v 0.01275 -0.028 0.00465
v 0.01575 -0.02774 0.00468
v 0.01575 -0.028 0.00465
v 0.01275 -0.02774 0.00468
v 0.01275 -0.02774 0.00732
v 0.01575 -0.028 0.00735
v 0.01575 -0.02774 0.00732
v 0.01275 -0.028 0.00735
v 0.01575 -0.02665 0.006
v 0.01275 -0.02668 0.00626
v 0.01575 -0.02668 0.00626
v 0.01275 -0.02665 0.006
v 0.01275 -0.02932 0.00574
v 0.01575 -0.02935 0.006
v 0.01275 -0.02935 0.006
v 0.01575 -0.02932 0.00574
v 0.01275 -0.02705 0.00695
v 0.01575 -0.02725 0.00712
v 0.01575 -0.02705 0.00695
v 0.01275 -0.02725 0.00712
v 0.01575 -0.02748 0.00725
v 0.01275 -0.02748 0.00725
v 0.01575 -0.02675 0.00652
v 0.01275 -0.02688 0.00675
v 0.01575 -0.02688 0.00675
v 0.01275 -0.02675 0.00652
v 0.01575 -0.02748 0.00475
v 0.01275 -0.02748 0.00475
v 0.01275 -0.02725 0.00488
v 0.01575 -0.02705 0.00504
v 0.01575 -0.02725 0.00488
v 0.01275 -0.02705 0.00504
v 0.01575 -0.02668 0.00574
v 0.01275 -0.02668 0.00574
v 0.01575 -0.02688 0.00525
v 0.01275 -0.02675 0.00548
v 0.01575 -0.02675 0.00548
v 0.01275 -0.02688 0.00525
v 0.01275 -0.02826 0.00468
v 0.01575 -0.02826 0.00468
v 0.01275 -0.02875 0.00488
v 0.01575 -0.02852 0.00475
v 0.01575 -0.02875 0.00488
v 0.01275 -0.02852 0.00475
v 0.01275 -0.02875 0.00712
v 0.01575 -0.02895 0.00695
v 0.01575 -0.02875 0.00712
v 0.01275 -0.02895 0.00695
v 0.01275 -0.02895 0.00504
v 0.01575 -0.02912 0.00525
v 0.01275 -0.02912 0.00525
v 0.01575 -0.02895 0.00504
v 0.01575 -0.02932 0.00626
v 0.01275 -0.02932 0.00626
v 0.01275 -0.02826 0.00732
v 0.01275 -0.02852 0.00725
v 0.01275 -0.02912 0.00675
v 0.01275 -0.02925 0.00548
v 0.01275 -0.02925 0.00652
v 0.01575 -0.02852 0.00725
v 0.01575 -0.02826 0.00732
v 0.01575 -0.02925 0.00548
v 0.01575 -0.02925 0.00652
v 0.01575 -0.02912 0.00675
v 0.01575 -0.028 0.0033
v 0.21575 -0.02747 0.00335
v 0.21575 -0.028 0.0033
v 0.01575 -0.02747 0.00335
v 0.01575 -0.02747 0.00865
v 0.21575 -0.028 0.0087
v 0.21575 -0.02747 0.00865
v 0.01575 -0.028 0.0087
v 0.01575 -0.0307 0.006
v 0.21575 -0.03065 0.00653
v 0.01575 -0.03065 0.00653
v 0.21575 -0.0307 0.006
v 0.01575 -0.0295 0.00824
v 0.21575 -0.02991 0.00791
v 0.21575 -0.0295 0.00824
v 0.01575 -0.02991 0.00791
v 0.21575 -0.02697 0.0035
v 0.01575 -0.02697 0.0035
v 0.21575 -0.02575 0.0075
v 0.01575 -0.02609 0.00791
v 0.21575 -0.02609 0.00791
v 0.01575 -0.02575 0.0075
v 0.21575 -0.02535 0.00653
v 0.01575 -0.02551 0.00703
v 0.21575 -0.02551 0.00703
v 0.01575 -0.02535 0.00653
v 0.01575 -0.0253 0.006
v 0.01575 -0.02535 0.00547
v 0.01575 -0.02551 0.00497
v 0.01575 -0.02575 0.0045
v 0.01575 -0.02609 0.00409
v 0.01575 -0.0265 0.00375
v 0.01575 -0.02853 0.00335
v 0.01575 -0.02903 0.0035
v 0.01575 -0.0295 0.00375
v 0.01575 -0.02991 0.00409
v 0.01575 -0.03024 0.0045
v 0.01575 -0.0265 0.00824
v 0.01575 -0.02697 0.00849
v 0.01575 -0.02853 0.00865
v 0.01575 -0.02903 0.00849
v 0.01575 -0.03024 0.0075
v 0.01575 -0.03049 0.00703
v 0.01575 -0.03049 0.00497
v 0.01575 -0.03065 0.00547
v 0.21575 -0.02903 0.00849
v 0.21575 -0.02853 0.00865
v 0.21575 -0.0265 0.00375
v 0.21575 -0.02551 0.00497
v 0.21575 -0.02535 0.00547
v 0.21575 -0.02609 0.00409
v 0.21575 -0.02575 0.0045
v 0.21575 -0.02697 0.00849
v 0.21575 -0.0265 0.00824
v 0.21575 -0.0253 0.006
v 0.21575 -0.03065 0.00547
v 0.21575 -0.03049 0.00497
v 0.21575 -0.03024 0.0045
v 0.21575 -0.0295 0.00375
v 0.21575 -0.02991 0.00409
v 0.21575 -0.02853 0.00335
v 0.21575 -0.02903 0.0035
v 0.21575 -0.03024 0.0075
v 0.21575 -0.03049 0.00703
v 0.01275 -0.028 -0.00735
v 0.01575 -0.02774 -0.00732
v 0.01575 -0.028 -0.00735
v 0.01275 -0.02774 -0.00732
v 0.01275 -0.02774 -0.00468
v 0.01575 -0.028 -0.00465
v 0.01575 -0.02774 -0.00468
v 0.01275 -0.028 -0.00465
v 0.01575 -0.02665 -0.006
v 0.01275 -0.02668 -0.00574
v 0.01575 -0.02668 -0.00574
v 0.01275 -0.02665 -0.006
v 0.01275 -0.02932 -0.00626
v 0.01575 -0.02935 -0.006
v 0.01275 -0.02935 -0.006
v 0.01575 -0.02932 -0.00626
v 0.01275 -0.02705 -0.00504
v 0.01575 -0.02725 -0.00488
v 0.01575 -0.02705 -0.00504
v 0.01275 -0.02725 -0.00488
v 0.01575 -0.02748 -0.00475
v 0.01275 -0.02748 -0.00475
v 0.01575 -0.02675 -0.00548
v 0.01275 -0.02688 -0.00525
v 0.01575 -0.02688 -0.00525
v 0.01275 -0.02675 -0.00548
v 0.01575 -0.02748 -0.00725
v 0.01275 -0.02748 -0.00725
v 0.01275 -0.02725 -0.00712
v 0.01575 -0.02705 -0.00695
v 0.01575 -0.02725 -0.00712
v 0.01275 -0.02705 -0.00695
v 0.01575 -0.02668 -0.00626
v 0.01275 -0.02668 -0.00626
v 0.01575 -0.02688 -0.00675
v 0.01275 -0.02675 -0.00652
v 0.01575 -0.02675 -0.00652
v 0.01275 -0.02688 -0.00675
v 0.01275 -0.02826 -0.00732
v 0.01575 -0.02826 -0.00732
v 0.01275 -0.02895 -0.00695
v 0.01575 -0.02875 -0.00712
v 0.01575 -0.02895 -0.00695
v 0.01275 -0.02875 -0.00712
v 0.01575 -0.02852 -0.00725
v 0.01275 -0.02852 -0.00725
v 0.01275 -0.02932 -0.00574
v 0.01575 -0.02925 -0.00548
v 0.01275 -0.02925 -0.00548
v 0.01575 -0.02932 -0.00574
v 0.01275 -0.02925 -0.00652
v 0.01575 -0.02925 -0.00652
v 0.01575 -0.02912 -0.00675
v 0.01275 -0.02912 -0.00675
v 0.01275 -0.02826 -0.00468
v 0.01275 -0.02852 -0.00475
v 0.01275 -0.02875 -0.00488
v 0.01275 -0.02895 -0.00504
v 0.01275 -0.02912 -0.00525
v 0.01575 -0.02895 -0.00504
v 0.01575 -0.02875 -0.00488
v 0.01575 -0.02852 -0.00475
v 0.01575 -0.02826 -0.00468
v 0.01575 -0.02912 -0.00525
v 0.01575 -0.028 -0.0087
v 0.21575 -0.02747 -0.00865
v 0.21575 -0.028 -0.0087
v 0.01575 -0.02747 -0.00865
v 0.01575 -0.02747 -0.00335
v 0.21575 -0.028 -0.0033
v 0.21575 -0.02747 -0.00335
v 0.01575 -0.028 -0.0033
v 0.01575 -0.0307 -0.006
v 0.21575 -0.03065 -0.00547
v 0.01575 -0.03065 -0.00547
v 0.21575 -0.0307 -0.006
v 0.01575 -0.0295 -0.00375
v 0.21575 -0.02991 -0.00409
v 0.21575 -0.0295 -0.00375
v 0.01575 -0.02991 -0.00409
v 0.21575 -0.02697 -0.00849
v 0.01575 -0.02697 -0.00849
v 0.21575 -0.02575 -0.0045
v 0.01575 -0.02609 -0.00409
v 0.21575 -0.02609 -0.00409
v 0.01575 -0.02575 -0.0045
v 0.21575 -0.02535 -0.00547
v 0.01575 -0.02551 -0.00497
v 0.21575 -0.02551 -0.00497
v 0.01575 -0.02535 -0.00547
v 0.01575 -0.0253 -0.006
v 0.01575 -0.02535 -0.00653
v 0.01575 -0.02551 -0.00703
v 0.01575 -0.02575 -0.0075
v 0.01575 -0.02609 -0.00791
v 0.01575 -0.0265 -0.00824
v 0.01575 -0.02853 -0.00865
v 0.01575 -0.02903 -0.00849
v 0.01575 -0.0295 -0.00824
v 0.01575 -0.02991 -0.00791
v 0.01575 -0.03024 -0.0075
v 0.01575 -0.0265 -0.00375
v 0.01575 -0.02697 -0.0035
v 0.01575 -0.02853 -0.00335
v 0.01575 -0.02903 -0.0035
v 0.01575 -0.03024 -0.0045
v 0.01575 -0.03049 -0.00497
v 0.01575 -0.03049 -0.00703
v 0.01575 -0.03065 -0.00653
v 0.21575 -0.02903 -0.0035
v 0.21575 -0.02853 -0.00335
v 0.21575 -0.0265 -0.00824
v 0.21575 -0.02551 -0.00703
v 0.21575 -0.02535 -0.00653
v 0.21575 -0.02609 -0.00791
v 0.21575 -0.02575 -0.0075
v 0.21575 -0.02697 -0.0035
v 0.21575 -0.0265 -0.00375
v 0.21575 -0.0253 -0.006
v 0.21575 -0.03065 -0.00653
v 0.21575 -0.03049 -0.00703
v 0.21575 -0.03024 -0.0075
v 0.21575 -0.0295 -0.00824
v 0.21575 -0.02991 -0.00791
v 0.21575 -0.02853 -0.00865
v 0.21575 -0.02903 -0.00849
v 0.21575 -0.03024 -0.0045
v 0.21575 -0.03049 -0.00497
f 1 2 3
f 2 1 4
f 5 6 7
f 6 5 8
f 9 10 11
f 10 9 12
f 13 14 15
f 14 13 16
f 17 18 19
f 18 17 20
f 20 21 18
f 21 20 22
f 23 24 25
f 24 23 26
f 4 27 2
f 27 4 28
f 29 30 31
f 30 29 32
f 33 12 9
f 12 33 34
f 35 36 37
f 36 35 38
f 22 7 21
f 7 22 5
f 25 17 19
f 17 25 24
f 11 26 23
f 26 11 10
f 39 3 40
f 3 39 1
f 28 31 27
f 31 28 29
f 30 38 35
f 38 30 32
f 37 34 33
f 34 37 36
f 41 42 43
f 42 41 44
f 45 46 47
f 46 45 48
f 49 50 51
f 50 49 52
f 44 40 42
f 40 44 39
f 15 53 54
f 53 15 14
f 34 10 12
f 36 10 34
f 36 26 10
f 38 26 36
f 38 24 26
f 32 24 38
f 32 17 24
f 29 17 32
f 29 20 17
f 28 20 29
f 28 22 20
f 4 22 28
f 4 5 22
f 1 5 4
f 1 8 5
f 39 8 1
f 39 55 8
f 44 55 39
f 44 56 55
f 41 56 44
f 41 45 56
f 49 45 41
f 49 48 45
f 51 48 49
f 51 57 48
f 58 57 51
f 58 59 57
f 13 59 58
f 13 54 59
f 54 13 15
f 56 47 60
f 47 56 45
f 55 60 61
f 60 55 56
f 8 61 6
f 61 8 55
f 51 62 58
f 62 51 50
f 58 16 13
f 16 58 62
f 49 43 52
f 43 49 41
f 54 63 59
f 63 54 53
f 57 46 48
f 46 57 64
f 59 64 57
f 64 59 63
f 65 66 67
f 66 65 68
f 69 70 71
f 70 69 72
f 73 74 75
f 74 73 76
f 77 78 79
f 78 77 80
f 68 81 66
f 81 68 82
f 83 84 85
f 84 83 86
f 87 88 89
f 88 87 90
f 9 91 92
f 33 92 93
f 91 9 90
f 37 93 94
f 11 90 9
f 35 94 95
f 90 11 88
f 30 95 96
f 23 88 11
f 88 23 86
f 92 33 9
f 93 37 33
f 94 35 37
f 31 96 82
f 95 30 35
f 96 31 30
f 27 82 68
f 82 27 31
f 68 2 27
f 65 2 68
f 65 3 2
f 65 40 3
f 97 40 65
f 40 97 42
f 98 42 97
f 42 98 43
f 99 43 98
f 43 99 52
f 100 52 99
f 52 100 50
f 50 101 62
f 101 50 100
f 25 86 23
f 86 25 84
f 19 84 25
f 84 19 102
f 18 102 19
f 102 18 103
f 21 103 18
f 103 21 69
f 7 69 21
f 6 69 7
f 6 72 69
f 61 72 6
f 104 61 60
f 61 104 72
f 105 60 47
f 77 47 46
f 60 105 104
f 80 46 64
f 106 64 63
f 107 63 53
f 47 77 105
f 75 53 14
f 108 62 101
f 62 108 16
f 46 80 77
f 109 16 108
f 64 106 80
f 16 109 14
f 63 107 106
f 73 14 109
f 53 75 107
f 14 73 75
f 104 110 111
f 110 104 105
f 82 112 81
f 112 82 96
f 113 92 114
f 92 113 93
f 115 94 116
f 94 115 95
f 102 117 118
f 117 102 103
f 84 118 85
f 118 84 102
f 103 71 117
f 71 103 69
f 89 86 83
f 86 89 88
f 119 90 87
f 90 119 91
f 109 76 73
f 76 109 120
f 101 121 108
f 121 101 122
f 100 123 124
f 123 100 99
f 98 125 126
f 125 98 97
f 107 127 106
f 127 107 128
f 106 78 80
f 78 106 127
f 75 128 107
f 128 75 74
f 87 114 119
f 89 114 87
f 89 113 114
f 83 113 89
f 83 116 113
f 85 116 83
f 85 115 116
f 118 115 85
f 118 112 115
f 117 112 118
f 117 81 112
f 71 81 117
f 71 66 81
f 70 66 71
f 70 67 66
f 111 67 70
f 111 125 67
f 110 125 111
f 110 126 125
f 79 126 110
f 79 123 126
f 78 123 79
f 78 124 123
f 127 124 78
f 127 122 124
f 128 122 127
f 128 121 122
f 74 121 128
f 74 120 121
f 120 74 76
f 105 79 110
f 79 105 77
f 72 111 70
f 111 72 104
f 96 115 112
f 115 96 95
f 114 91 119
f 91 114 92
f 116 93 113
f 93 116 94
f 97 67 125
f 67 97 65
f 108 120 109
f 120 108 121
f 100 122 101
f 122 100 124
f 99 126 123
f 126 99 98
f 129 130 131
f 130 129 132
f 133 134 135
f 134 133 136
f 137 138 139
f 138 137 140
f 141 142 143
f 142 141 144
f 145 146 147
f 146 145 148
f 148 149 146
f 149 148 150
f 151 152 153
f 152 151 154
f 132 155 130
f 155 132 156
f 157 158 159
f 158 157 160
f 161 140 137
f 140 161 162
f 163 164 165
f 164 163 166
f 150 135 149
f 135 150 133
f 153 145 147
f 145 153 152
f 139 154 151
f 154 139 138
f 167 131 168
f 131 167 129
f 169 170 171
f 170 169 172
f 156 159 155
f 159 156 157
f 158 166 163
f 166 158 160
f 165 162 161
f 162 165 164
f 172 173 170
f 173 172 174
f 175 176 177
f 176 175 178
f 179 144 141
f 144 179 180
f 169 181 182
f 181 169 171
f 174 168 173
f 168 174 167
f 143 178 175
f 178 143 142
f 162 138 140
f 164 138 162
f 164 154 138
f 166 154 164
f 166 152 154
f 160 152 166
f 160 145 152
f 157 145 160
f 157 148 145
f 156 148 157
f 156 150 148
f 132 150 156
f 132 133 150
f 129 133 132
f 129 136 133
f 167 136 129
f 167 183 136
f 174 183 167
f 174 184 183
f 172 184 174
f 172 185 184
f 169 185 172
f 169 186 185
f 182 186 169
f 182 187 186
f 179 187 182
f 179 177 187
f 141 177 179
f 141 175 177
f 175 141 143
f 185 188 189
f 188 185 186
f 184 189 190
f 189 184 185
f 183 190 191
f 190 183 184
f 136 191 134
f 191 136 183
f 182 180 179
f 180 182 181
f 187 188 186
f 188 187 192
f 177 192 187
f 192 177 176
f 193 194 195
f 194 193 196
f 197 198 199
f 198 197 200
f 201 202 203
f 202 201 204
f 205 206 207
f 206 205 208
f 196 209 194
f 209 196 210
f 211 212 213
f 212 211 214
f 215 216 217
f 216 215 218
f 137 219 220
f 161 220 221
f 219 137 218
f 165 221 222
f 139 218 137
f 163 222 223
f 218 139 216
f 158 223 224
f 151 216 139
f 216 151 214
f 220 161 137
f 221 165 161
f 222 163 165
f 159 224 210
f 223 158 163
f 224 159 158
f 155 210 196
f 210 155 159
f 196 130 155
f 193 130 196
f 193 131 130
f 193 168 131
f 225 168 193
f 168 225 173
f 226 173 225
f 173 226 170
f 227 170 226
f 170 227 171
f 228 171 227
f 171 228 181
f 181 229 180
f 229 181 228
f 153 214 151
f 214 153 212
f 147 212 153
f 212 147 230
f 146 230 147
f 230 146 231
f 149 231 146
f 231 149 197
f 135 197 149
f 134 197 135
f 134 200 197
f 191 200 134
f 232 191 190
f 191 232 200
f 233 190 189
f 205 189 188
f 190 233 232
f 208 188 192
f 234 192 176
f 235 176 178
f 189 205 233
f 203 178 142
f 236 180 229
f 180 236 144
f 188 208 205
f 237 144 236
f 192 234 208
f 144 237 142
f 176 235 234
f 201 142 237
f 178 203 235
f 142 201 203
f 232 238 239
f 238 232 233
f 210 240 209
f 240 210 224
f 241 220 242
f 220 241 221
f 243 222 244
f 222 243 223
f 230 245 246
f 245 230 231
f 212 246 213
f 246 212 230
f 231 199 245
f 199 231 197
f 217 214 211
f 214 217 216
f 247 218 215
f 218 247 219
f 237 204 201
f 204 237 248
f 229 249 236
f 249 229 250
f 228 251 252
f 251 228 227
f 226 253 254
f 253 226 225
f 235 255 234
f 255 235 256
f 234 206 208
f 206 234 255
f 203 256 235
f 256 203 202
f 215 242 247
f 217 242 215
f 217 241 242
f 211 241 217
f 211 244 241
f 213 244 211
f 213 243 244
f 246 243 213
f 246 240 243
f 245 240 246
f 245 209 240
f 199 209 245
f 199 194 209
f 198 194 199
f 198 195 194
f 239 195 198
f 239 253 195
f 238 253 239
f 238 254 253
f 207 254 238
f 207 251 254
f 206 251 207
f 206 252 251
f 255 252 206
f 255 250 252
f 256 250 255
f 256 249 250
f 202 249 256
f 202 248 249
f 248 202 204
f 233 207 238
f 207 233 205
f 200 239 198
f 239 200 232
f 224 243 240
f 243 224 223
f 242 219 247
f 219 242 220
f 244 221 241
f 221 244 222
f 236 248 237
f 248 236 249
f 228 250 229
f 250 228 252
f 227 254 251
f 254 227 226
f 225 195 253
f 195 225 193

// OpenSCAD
n = 128;
m = 32;
clearance = 0.0001;
delta = 0.000001;

HoleInR = 0.00125 + clearance;
HoleOutR = 2 * HoleInR;
HoleInW = 0.003;
HoleOutW = 0.2;

x1 = 0.01425;
y1 = -0.028;
z1 = 0.006;
translate([x1, y1, z1]){
    rotate(a = 90, v = [0, 1, 0]) {
        cylinder(h = HoleInW, r1 = HoleInR, r2 = HoleInR, center     = true, $fn = m);
    }
}

translate([x1 + 0.5 * (HoleInW + HoleOutW) - delta, y1 , z1]){
    rotate(a = 90, v = [0, 1, 0]) {
        cylinder(h = HoleOutW, r1 = HoleOutR, r2 = HoleOutR, center = true, $fn = m);   
    }  
}


x2 = 0.01425;
y2 = -0.028;
z2 = -0.006;
translate([x2, y2, z2]){
    rotate(a = 90, v = [0, 1, 0]) {
        cylinder(h = HoleInW, r1 = HoleInR, r2 = HoleInR, center     = true, $fn = m);
    }
}

translate([x2 + 0.5 * (HoleInW + HoleOutW) - delta, y2, z2]){
    rotate(a = 90, v = [0, 1, 0]) {
        cylinder(h = HoleOutW, r1 = HoleOutR, r2 = HoleOutR, center = true, $fn = m);   
    }  
}
